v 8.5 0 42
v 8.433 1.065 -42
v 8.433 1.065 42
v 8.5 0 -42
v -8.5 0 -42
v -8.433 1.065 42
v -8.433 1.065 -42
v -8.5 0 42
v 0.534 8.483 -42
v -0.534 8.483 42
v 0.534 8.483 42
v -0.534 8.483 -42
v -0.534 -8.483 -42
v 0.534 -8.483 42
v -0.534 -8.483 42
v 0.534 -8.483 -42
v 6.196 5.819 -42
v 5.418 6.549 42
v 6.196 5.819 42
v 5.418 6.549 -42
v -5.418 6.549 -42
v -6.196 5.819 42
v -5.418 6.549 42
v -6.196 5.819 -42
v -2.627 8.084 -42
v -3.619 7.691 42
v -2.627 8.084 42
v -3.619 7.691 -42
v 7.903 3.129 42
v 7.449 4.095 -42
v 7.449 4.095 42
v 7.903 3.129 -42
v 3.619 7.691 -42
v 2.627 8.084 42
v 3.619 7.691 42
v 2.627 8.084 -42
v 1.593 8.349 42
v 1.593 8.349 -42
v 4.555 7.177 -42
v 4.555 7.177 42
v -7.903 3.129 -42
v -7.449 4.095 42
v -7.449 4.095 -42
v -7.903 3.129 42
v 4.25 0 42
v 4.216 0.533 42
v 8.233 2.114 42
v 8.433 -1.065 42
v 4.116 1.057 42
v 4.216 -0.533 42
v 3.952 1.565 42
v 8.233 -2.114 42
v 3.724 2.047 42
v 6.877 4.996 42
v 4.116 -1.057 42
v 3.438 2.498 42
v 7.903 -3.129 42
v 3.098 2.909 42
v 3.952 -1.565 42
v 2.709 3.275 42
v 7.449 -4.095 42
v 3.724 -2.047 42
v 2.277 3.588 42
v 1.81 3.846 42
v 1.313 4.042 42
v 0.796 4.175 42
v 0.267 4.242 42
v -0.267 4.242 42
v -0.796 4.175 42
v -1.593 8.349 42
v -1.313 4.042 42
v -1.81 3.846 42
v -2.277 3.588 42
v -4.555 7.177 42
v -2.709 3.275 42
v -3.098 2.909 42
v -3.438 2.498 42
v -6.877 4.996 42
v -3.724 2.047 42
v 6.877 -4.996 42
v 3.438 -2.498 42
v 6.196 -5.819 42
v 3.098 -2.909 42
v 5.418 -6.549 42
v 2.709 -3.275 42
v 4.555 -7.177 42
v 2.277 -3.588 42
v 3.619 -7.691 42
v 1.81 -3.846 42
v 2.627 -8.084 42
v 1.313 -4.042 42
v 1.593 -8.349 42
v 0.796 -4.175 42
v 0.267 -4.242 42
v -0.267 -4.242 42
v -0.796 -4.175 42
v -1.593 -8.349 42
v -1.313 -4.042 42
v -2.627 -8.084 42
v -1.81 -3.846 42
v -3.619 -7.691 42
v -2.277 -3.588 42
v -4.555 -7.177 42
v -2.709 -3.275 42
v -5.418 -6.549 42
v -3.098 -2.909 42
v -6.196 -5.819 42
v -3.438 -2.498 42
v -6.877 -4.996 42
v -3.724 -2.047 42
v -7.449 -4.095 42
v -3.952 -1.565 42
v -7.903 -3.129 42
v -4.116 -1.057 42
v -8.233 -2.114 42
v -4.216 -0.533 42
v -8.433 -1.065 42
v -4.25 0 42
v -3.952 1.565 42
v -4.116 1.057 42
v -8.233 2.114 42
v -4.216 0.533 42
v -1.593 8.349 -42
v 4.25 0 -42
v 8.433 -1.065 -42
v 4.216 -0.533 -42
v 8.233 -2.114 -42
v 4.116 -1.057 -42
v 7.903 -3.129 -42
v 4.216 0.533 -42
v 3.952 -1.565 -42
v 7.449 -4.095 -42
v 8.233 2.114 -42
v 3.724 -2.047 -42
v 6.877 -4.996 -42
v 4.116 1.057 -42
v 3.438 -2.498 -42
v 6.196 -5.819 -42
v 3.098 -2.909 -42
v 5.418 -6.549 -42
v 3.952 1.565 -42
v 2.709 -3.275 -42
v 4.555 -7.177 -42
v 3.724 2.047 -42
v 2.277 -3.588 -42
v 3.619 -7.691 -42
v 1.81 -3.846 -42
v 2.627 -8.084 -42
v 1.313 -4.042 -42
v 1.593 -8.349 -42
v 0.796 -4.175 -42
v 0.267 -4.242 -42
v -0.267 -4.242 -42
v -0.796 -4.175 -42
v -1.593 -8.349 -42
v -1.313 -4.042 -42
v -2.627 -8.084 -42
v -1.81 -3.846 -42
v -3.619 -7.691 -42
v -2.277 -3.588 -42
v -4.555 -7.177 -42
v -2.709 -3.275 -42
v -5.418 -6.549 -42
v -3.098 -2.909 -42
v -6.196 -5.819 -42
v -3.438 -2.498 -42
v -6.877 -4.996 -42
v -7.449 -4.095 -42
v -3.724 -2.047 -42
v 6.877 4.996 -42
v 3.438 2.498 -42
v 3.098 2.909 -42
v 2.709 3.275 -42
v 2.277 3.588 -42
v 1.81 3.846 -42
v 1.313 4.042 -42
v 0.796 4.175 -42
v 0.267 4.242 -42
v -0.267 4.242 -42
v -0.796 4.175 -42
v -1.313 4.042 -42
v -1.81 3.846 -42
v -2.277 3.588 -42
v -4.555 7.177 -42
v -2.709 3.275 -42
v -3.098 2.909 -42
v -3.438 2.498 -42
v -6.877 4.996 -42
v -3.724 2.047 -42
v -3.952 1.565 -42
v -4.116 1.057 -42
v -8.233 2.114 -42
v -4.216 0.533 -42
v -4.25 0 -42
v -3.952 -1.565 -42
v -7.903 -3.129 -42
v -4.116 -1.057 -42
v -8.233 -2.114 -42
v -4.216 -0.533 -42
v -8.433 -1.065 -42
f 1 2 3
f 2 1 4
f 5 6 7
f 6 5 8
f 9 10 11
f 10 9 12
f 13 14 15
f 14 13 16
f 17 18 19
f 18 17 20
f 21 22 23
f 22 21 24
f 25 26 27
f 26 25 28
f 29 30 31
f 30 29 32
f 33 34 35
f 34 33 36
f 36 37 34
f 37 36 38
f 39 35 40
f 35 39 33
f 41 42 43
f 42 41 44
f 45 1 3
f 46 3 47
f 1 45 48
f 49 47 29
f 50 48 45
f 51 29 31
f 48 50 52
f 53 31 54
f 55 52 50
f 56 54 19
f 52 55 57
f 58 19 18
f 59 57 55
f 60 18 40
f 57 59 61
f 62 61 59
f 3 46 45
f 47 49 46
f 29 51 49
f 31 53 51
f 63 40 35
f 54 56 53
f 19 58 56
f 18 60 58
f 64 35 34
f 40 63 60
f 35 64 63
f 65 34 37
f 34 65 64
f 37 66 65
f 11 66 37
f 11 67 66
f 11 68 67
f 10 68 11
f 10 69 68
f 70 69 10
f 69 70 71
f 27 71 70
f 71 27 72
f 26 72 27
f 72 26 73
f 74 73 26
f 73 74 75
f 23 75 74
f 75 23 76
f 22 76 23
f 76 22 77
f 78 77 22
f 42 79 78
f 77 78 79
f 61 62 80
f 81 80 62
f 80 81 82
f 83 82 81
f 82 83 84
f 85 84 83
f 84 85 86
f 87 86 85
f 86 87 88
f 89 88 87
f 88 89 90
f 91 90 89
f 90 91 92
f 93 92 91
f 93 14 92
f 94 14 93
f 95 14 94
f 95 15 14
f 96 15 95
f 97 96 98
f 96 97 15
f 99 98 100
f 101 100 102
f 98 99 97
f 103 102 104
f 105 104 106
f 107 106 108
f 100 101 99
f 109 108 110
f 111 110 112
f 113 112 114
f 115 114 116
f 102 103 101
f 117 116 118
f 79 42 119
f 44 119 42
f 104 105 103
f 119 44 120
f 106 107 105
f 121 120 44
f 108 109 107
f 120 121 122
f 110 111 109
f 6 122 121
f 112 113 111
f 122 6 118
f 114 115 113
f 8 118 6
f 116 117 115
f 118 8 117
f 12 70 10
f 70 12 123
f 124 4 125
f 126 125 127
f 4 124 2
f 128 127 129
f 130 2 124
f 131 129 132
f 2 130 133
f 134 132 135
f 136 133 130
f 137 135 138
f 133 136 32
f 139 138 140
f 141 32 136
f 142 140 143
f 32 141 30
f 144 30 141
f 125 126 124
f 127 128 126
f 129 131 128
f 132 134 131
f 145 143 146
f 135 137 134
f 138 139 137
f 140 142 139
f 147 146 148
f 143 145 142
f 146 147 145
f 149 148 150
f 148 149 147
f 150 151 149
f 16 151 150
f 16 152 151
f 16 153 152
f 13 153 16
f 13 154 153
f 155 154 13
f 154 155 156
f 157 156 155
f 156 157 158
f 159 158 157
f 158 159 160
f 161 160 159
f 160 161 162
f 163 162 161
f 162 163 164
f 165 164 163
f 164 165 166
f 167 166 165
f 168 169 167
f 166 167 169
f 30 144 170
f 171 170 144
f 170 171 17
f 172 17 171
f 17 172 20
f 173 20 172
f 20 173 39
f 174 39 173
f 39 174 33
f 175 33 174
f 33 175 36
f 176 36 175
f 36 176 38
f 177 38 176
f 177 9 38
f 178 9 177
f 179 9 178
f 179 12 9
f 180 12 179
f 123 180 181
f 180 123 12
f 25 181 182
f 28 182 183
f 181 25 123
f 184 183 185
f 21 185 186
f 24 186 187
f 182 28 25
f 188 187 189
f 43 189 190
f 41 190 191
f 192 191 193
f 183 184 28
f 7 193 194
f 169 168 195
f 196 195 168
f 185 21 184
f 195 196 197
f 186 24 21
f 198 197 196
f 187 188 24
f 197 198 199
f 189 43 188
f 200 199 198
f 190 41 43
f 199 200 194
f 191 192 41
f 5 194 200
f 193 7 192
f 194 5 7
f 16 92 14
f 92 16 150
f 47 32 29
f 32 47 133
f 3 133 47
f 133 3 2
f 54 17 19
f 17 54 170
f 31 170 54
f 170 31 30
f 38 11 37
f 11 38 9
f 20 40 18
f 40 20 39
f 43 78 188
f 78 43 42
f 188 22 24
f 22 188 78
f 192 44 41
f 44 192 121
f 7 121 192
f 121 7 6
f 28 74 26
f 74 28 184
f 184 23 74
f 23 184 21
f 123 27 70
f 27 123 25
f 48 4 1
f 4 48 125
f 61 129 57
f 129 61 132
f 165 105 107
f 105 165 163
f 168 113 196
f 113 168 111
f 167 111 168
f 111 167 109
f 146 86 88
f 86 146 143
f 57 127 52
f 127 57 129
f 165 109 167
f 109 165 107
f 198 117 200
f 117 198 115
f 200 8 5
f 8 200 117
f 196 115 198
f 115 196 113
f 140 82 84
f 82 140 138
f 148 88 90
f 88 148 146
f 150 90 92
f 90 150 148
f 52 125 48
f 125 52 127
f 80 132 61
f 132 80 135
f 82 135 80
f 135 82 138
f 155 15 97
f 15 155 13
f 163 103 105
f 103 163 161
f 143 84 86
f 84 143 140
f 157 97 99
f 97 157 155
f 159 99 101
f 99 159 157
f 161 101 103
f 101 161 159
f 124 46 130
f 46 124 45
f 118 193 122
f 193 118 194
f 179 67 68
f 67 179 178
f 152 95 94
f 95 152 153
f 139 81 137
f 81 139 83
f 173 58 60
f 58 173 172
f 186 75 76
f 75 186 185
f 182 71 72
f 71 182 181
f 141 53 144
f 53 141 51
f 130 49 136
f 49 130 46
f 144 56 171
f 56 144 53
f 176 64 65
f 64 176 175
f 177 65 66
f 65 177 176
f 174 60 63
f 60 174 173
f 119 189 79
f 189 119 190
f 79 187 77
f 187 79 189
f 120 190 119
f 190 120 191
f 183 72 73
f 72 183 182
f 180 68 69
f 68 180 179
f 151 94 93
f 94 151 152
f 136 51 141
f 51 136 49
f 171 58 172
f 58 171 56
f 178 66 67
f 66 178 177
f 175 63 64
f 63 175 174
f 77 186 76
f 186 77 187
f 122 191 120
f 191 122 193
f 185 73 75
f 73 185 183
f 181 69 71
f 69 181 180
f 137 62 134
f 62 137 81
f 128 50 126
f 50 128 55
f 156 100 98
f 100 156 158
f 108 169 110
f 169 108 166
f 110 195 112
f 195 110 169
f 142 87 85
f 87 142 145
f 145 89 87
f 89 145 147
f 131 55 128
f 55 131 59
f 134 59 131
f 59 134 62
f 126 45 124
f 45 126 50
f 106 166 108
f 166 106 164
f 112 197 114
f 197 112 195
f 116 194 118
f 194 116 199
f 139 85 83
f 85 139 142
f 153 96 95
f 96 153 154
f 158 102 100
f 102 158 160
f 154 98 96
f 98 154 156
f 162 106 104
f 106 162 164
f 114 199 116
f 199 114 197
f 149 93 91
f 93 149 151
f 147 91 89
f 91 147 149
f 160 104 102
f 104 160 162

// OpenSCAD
$fn = 50;


difference() {
	union() {
		translate(v = [0, 0, -42.0000000000]) {
			cylinder(h = 84, r = 8.5000000000);
		}
	}
	union() {
		translate(v = [0, 0, -100.0000000000]) {
			cylinder(h = 200, r = 4.2500000000);
		}
	}
}
